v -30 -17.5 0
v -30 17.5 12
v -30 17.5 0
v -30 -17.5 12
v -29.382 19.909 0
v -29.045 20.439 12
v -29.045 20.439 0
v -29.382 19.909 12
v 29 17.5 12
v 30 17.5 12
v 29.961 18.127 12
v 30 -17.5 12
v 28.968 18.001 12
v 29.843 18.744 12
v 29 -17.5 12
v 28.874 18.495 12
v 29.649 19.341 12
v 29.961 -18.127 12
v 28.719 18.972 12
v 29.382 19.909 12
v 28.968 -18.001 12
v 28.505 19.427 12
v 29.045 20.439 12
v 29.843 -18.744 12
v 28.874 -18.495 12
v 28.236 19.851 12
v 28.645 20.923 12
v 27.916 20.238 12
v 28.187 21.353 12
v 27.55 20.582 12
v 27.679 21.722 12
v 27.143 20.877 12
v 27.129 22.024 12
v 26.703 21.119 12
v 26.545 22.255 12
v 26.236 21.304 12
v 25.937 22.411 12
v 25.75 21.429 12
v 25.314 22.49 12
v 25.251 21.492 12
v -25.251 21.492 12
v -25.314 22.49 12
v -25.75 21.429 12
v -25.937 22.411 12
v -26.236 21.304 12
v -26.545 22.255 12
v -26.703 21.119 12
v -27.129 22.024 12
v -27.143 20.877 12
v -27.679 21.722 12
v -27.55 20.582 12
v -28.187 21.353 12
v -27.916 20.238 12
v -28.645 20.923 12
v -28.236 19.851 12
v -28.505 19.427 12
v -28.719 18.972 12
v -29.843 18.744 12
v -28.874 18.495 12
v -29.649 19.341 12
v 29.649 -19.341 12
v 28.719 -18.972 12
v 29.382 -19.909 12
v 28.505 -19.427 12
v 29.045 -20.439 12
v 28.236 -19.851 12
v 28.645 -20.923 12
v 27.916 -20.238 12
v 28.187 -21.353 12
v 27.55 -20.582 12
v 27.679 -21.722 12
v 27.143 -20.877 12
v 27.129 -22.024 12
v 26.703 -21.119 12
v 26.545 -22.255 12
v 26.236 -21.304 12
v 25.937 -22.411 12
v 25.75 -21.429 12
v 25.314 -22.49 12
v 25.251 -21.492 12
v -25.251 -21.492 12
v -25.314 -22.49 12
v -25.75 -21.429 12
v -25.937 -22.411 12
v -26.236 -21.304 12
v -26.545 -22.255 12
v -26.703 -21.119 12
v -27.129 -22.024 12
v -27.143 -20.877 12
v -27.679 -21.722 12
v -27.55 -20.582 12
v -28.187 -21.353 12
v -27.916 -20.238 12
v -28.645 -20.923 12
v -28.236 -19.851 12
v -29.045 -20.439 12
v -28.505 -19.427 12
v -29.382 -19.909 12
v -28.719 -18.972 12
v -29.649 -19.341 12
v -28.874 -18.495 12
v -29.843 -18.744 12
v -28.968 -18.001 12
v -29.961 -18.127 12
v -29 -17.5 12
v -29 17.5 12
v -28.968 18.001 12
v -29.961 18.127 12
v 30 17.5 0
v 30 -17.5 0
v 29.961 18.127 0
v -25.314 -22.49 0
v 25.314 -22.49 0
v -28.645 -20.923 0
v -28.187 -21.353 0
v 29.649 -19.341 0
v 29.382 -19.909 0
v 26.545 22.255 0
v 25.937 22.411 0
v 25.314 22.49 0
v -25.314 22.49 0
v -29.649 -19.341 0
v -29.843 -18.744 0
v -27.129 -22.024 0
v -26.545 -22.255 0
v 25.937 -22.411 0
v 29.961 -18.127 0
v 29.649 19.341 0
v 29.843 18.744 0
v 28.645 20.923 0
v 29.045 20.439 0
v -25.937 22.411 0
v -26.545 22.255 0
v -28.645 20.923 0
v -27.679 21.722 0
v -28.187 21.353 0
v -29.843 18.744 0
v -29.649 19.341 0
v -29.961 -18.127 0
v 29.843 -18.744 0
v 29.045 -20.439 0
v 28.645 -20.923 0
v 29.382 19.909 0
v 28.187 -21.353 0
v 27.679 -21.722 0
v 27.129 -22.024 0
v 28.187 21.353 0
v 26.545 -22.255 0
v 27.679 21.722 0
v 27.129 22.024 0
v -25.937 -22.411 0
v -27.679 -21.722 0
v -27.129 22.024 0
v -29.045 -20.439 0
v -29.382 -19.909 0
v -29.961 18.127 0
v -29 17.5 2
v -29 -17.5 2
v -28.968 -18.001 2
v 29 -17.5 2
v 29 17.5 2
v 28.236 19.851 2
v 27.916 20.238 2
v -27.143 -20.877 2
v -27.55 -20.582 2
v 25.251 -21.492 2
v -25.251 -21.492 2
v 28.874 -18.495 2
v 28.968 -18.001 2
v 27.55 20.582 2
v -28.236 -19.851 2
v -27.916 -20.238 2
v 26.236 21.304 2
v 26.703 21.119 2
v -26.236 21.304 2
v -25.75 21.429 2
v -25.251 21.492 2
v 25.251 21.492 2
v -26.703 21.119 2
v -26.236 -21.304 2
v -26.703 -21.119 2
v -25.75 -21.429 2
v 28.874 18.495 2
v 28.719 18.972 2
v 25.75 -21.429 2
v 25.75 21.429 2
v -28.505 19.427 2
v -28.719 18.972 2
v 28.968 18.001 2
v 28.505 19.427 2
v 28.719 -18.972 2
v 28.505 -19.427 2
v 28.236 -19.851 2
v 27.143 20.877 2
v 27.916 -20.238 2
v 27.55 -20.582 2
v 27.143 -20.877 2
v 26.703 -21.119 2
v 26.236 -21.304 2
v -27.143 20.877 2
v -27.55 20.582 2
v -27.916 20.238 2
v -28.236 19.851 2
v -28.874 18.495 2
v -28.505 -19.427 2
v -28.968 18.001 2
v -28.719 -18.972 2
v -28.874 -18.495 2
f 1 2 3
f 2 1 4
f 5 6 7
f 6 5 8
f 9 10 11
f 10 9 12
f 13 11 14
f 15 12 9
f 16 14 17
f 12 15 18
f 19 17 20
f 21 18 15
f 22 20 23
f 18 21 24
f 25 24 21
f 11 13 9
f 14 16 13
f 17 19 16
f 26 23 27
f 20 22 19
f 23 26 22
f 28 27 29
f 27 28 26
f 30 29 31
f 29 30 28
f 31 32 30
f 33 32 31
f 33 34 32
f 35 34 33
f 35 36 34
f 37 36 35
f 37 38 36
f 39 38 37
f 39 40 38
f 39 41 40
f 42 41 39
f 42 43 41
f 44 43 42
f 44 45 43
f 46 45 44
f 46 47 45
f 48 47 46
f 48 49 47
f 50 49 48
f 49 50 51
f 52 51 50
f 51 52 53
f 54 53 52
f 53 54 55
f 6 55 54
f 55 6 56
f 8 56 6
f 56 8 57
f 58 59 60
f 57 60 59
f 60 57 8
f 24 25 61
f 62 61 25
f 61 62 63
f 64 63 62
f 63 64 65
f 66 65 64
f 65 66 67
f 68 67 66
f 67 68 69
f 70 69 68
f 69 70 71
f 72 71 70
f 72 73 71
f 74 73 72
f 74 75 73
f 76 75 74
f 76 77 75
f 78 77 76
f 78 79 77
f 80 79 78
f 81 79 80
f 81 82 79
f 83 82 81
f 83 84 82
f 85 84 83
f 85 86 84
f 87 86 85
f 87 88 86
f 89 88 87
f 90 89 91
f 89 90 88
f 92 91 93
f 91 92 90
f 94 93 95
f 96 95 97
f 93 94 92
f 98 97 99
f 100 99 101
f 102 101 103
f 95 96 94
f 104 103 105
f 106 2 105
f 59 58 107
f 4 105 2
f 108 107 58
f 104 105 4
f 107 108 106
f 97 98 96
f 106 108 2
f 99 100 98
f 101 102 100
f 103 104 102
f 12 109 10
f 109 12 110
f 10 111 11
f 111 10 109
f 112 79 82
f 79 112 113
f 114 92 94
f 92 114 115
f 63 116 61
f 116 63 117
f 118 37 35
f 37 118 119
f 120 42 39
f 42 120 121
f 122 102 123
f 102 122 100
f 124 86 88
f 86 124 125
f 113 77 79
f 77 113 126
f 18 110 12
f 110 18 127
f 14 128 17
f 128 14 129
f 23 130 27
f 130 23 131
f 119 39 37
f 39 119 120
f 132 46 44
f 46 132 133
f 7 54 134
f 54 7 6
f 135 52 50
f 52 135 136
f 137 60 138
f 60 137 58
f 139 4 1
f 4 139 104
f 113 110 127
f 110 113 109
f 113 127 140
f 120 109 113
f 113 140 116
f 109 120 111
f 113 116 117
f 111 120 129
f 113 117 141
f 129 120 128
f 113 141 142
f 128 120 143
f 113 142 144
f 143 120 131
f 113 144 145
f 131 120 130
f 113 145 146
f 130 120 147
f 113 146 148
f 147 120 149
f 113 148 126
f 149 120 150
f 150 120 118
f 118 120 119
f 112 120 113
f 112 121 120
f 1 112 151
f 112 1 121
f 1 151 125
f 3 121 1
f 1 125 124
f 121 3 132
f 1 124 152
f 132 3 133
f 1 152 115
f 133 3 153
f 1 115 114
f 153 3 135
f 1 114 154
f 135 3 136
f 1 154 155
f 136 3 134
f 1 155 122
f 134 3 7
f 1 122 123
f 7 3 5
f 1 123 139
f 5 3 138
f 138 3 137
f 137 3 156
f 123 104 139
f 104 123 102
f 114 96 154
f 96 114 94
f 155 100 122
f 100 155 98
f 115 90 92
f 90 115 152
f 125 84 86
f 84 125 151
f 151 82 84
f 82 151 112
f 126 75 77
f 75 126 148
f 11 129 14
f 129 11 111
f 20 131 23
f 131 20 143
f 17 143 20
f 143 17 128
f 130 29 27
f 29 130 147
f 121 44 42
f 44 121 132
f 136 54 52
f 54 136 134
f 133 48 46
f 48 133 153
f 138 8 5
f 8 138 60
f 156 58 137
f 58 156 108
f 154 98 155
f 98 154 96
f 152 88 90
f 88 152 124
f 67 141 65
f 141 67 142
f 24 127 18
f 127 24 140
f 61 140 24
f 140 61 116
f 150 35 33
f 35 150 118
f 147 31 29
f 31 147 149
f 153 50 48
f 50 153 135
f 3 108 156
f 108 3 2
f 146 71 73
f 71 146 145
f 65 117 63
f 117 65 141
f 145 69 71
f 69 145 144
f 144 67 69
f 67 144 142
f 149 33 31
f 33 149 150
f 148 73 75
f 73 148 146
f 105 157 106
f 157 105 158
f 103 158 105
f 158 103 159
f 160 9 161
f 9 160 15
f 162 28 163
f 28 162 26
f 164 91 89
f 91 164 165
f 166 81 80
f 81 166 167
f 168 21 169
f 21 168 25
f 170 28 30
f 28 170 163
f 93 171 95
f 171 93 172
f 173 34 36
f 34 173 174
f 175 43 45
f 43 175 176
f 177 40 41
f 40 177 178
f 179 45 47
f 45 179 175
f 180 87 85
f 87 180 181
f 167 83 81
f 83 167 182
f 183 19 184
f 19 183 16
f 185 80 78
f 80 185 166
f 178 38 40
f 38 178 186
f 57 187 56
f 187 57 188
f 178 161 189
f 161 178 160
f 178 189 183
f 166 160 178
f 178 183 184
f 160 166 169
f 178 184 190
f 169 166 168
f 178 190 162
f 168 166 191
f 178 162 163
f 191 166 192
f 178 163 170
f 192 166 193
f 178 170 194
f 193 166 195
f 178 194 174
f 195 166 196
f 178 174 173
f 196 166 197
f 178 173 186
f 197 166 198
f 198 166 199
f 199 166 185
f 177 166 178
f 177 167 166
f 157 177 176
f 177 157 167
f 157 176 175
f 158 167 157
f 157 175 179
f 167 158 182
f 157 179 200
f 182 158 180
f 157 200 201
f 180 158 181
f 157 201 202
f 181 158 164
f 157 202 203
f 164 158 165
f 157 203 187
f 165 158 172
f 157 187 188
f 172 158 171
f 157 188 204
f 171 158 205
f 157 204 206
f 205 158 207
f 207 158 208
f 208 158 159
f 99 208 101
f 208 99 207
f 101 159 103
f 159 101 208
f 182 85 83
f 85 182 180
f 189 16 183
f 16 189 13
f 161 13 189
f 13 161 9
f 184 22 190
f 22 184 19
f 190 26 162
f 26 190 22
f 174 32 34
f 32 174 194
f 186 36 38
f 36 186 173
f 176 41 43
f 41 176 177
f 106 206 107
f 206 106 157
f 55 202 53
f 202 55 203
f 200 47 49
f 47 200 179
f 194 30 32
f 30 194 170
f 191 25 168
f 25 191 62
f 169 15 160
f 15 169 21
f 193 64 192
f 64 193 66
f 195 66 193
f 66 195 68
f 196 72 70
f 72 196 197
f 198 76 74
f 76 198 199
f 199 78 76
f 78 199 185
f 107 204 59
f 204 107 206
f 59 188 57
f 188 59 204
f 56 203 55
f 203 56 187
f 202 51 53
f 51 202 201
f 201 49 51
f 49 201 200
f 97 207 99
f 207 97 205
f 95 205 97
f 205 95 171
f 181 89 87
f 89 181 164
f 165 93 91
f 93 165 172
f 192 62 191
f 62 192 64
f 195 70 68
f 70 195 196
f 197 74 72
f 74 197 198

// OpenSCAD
$fn = 50;


difference() {
	union() {
		hull() {
			translate(v = [-25.0000000000, 17.5000000000, 0]) {
				cylinder(h = 12, r = 5);
			}
			translate(v = [25.0000000000, 17.5000000000, 0]) {
				cylinder(h = 12, r = 5);
			}
			translate(v = [-25.0000000000, -17.5000000000, 0]) {
				cylinder(h = 12, r = 5);
			}
			translate(v = [25.0000000000, -17.5000000000, 0]) {
				cylinder(h = 12, r = 5);
			}
		}
	}
	union() {
		translate(v = [0, 0, 2]) {
			hull() {
				translate(v = [-25.0000000000, 17.5000000000, 0]) {
					cylinder(h = 10, r = 4);
				}
				translate(v = [25.0000000000, 17.5000000000, 0]) {
					cylinder(h = 10, r = 4);
				}
				translate(v = [-25.0000000000, -17.5000000000, 0]) {
					cylinder(h = 10, r = 4);
				}
				translate(v = [25.0000000000, -17.5000000000, 0]) {
					cylinder(h = 10, r = 4);
				}
			}
		}
	}
}
